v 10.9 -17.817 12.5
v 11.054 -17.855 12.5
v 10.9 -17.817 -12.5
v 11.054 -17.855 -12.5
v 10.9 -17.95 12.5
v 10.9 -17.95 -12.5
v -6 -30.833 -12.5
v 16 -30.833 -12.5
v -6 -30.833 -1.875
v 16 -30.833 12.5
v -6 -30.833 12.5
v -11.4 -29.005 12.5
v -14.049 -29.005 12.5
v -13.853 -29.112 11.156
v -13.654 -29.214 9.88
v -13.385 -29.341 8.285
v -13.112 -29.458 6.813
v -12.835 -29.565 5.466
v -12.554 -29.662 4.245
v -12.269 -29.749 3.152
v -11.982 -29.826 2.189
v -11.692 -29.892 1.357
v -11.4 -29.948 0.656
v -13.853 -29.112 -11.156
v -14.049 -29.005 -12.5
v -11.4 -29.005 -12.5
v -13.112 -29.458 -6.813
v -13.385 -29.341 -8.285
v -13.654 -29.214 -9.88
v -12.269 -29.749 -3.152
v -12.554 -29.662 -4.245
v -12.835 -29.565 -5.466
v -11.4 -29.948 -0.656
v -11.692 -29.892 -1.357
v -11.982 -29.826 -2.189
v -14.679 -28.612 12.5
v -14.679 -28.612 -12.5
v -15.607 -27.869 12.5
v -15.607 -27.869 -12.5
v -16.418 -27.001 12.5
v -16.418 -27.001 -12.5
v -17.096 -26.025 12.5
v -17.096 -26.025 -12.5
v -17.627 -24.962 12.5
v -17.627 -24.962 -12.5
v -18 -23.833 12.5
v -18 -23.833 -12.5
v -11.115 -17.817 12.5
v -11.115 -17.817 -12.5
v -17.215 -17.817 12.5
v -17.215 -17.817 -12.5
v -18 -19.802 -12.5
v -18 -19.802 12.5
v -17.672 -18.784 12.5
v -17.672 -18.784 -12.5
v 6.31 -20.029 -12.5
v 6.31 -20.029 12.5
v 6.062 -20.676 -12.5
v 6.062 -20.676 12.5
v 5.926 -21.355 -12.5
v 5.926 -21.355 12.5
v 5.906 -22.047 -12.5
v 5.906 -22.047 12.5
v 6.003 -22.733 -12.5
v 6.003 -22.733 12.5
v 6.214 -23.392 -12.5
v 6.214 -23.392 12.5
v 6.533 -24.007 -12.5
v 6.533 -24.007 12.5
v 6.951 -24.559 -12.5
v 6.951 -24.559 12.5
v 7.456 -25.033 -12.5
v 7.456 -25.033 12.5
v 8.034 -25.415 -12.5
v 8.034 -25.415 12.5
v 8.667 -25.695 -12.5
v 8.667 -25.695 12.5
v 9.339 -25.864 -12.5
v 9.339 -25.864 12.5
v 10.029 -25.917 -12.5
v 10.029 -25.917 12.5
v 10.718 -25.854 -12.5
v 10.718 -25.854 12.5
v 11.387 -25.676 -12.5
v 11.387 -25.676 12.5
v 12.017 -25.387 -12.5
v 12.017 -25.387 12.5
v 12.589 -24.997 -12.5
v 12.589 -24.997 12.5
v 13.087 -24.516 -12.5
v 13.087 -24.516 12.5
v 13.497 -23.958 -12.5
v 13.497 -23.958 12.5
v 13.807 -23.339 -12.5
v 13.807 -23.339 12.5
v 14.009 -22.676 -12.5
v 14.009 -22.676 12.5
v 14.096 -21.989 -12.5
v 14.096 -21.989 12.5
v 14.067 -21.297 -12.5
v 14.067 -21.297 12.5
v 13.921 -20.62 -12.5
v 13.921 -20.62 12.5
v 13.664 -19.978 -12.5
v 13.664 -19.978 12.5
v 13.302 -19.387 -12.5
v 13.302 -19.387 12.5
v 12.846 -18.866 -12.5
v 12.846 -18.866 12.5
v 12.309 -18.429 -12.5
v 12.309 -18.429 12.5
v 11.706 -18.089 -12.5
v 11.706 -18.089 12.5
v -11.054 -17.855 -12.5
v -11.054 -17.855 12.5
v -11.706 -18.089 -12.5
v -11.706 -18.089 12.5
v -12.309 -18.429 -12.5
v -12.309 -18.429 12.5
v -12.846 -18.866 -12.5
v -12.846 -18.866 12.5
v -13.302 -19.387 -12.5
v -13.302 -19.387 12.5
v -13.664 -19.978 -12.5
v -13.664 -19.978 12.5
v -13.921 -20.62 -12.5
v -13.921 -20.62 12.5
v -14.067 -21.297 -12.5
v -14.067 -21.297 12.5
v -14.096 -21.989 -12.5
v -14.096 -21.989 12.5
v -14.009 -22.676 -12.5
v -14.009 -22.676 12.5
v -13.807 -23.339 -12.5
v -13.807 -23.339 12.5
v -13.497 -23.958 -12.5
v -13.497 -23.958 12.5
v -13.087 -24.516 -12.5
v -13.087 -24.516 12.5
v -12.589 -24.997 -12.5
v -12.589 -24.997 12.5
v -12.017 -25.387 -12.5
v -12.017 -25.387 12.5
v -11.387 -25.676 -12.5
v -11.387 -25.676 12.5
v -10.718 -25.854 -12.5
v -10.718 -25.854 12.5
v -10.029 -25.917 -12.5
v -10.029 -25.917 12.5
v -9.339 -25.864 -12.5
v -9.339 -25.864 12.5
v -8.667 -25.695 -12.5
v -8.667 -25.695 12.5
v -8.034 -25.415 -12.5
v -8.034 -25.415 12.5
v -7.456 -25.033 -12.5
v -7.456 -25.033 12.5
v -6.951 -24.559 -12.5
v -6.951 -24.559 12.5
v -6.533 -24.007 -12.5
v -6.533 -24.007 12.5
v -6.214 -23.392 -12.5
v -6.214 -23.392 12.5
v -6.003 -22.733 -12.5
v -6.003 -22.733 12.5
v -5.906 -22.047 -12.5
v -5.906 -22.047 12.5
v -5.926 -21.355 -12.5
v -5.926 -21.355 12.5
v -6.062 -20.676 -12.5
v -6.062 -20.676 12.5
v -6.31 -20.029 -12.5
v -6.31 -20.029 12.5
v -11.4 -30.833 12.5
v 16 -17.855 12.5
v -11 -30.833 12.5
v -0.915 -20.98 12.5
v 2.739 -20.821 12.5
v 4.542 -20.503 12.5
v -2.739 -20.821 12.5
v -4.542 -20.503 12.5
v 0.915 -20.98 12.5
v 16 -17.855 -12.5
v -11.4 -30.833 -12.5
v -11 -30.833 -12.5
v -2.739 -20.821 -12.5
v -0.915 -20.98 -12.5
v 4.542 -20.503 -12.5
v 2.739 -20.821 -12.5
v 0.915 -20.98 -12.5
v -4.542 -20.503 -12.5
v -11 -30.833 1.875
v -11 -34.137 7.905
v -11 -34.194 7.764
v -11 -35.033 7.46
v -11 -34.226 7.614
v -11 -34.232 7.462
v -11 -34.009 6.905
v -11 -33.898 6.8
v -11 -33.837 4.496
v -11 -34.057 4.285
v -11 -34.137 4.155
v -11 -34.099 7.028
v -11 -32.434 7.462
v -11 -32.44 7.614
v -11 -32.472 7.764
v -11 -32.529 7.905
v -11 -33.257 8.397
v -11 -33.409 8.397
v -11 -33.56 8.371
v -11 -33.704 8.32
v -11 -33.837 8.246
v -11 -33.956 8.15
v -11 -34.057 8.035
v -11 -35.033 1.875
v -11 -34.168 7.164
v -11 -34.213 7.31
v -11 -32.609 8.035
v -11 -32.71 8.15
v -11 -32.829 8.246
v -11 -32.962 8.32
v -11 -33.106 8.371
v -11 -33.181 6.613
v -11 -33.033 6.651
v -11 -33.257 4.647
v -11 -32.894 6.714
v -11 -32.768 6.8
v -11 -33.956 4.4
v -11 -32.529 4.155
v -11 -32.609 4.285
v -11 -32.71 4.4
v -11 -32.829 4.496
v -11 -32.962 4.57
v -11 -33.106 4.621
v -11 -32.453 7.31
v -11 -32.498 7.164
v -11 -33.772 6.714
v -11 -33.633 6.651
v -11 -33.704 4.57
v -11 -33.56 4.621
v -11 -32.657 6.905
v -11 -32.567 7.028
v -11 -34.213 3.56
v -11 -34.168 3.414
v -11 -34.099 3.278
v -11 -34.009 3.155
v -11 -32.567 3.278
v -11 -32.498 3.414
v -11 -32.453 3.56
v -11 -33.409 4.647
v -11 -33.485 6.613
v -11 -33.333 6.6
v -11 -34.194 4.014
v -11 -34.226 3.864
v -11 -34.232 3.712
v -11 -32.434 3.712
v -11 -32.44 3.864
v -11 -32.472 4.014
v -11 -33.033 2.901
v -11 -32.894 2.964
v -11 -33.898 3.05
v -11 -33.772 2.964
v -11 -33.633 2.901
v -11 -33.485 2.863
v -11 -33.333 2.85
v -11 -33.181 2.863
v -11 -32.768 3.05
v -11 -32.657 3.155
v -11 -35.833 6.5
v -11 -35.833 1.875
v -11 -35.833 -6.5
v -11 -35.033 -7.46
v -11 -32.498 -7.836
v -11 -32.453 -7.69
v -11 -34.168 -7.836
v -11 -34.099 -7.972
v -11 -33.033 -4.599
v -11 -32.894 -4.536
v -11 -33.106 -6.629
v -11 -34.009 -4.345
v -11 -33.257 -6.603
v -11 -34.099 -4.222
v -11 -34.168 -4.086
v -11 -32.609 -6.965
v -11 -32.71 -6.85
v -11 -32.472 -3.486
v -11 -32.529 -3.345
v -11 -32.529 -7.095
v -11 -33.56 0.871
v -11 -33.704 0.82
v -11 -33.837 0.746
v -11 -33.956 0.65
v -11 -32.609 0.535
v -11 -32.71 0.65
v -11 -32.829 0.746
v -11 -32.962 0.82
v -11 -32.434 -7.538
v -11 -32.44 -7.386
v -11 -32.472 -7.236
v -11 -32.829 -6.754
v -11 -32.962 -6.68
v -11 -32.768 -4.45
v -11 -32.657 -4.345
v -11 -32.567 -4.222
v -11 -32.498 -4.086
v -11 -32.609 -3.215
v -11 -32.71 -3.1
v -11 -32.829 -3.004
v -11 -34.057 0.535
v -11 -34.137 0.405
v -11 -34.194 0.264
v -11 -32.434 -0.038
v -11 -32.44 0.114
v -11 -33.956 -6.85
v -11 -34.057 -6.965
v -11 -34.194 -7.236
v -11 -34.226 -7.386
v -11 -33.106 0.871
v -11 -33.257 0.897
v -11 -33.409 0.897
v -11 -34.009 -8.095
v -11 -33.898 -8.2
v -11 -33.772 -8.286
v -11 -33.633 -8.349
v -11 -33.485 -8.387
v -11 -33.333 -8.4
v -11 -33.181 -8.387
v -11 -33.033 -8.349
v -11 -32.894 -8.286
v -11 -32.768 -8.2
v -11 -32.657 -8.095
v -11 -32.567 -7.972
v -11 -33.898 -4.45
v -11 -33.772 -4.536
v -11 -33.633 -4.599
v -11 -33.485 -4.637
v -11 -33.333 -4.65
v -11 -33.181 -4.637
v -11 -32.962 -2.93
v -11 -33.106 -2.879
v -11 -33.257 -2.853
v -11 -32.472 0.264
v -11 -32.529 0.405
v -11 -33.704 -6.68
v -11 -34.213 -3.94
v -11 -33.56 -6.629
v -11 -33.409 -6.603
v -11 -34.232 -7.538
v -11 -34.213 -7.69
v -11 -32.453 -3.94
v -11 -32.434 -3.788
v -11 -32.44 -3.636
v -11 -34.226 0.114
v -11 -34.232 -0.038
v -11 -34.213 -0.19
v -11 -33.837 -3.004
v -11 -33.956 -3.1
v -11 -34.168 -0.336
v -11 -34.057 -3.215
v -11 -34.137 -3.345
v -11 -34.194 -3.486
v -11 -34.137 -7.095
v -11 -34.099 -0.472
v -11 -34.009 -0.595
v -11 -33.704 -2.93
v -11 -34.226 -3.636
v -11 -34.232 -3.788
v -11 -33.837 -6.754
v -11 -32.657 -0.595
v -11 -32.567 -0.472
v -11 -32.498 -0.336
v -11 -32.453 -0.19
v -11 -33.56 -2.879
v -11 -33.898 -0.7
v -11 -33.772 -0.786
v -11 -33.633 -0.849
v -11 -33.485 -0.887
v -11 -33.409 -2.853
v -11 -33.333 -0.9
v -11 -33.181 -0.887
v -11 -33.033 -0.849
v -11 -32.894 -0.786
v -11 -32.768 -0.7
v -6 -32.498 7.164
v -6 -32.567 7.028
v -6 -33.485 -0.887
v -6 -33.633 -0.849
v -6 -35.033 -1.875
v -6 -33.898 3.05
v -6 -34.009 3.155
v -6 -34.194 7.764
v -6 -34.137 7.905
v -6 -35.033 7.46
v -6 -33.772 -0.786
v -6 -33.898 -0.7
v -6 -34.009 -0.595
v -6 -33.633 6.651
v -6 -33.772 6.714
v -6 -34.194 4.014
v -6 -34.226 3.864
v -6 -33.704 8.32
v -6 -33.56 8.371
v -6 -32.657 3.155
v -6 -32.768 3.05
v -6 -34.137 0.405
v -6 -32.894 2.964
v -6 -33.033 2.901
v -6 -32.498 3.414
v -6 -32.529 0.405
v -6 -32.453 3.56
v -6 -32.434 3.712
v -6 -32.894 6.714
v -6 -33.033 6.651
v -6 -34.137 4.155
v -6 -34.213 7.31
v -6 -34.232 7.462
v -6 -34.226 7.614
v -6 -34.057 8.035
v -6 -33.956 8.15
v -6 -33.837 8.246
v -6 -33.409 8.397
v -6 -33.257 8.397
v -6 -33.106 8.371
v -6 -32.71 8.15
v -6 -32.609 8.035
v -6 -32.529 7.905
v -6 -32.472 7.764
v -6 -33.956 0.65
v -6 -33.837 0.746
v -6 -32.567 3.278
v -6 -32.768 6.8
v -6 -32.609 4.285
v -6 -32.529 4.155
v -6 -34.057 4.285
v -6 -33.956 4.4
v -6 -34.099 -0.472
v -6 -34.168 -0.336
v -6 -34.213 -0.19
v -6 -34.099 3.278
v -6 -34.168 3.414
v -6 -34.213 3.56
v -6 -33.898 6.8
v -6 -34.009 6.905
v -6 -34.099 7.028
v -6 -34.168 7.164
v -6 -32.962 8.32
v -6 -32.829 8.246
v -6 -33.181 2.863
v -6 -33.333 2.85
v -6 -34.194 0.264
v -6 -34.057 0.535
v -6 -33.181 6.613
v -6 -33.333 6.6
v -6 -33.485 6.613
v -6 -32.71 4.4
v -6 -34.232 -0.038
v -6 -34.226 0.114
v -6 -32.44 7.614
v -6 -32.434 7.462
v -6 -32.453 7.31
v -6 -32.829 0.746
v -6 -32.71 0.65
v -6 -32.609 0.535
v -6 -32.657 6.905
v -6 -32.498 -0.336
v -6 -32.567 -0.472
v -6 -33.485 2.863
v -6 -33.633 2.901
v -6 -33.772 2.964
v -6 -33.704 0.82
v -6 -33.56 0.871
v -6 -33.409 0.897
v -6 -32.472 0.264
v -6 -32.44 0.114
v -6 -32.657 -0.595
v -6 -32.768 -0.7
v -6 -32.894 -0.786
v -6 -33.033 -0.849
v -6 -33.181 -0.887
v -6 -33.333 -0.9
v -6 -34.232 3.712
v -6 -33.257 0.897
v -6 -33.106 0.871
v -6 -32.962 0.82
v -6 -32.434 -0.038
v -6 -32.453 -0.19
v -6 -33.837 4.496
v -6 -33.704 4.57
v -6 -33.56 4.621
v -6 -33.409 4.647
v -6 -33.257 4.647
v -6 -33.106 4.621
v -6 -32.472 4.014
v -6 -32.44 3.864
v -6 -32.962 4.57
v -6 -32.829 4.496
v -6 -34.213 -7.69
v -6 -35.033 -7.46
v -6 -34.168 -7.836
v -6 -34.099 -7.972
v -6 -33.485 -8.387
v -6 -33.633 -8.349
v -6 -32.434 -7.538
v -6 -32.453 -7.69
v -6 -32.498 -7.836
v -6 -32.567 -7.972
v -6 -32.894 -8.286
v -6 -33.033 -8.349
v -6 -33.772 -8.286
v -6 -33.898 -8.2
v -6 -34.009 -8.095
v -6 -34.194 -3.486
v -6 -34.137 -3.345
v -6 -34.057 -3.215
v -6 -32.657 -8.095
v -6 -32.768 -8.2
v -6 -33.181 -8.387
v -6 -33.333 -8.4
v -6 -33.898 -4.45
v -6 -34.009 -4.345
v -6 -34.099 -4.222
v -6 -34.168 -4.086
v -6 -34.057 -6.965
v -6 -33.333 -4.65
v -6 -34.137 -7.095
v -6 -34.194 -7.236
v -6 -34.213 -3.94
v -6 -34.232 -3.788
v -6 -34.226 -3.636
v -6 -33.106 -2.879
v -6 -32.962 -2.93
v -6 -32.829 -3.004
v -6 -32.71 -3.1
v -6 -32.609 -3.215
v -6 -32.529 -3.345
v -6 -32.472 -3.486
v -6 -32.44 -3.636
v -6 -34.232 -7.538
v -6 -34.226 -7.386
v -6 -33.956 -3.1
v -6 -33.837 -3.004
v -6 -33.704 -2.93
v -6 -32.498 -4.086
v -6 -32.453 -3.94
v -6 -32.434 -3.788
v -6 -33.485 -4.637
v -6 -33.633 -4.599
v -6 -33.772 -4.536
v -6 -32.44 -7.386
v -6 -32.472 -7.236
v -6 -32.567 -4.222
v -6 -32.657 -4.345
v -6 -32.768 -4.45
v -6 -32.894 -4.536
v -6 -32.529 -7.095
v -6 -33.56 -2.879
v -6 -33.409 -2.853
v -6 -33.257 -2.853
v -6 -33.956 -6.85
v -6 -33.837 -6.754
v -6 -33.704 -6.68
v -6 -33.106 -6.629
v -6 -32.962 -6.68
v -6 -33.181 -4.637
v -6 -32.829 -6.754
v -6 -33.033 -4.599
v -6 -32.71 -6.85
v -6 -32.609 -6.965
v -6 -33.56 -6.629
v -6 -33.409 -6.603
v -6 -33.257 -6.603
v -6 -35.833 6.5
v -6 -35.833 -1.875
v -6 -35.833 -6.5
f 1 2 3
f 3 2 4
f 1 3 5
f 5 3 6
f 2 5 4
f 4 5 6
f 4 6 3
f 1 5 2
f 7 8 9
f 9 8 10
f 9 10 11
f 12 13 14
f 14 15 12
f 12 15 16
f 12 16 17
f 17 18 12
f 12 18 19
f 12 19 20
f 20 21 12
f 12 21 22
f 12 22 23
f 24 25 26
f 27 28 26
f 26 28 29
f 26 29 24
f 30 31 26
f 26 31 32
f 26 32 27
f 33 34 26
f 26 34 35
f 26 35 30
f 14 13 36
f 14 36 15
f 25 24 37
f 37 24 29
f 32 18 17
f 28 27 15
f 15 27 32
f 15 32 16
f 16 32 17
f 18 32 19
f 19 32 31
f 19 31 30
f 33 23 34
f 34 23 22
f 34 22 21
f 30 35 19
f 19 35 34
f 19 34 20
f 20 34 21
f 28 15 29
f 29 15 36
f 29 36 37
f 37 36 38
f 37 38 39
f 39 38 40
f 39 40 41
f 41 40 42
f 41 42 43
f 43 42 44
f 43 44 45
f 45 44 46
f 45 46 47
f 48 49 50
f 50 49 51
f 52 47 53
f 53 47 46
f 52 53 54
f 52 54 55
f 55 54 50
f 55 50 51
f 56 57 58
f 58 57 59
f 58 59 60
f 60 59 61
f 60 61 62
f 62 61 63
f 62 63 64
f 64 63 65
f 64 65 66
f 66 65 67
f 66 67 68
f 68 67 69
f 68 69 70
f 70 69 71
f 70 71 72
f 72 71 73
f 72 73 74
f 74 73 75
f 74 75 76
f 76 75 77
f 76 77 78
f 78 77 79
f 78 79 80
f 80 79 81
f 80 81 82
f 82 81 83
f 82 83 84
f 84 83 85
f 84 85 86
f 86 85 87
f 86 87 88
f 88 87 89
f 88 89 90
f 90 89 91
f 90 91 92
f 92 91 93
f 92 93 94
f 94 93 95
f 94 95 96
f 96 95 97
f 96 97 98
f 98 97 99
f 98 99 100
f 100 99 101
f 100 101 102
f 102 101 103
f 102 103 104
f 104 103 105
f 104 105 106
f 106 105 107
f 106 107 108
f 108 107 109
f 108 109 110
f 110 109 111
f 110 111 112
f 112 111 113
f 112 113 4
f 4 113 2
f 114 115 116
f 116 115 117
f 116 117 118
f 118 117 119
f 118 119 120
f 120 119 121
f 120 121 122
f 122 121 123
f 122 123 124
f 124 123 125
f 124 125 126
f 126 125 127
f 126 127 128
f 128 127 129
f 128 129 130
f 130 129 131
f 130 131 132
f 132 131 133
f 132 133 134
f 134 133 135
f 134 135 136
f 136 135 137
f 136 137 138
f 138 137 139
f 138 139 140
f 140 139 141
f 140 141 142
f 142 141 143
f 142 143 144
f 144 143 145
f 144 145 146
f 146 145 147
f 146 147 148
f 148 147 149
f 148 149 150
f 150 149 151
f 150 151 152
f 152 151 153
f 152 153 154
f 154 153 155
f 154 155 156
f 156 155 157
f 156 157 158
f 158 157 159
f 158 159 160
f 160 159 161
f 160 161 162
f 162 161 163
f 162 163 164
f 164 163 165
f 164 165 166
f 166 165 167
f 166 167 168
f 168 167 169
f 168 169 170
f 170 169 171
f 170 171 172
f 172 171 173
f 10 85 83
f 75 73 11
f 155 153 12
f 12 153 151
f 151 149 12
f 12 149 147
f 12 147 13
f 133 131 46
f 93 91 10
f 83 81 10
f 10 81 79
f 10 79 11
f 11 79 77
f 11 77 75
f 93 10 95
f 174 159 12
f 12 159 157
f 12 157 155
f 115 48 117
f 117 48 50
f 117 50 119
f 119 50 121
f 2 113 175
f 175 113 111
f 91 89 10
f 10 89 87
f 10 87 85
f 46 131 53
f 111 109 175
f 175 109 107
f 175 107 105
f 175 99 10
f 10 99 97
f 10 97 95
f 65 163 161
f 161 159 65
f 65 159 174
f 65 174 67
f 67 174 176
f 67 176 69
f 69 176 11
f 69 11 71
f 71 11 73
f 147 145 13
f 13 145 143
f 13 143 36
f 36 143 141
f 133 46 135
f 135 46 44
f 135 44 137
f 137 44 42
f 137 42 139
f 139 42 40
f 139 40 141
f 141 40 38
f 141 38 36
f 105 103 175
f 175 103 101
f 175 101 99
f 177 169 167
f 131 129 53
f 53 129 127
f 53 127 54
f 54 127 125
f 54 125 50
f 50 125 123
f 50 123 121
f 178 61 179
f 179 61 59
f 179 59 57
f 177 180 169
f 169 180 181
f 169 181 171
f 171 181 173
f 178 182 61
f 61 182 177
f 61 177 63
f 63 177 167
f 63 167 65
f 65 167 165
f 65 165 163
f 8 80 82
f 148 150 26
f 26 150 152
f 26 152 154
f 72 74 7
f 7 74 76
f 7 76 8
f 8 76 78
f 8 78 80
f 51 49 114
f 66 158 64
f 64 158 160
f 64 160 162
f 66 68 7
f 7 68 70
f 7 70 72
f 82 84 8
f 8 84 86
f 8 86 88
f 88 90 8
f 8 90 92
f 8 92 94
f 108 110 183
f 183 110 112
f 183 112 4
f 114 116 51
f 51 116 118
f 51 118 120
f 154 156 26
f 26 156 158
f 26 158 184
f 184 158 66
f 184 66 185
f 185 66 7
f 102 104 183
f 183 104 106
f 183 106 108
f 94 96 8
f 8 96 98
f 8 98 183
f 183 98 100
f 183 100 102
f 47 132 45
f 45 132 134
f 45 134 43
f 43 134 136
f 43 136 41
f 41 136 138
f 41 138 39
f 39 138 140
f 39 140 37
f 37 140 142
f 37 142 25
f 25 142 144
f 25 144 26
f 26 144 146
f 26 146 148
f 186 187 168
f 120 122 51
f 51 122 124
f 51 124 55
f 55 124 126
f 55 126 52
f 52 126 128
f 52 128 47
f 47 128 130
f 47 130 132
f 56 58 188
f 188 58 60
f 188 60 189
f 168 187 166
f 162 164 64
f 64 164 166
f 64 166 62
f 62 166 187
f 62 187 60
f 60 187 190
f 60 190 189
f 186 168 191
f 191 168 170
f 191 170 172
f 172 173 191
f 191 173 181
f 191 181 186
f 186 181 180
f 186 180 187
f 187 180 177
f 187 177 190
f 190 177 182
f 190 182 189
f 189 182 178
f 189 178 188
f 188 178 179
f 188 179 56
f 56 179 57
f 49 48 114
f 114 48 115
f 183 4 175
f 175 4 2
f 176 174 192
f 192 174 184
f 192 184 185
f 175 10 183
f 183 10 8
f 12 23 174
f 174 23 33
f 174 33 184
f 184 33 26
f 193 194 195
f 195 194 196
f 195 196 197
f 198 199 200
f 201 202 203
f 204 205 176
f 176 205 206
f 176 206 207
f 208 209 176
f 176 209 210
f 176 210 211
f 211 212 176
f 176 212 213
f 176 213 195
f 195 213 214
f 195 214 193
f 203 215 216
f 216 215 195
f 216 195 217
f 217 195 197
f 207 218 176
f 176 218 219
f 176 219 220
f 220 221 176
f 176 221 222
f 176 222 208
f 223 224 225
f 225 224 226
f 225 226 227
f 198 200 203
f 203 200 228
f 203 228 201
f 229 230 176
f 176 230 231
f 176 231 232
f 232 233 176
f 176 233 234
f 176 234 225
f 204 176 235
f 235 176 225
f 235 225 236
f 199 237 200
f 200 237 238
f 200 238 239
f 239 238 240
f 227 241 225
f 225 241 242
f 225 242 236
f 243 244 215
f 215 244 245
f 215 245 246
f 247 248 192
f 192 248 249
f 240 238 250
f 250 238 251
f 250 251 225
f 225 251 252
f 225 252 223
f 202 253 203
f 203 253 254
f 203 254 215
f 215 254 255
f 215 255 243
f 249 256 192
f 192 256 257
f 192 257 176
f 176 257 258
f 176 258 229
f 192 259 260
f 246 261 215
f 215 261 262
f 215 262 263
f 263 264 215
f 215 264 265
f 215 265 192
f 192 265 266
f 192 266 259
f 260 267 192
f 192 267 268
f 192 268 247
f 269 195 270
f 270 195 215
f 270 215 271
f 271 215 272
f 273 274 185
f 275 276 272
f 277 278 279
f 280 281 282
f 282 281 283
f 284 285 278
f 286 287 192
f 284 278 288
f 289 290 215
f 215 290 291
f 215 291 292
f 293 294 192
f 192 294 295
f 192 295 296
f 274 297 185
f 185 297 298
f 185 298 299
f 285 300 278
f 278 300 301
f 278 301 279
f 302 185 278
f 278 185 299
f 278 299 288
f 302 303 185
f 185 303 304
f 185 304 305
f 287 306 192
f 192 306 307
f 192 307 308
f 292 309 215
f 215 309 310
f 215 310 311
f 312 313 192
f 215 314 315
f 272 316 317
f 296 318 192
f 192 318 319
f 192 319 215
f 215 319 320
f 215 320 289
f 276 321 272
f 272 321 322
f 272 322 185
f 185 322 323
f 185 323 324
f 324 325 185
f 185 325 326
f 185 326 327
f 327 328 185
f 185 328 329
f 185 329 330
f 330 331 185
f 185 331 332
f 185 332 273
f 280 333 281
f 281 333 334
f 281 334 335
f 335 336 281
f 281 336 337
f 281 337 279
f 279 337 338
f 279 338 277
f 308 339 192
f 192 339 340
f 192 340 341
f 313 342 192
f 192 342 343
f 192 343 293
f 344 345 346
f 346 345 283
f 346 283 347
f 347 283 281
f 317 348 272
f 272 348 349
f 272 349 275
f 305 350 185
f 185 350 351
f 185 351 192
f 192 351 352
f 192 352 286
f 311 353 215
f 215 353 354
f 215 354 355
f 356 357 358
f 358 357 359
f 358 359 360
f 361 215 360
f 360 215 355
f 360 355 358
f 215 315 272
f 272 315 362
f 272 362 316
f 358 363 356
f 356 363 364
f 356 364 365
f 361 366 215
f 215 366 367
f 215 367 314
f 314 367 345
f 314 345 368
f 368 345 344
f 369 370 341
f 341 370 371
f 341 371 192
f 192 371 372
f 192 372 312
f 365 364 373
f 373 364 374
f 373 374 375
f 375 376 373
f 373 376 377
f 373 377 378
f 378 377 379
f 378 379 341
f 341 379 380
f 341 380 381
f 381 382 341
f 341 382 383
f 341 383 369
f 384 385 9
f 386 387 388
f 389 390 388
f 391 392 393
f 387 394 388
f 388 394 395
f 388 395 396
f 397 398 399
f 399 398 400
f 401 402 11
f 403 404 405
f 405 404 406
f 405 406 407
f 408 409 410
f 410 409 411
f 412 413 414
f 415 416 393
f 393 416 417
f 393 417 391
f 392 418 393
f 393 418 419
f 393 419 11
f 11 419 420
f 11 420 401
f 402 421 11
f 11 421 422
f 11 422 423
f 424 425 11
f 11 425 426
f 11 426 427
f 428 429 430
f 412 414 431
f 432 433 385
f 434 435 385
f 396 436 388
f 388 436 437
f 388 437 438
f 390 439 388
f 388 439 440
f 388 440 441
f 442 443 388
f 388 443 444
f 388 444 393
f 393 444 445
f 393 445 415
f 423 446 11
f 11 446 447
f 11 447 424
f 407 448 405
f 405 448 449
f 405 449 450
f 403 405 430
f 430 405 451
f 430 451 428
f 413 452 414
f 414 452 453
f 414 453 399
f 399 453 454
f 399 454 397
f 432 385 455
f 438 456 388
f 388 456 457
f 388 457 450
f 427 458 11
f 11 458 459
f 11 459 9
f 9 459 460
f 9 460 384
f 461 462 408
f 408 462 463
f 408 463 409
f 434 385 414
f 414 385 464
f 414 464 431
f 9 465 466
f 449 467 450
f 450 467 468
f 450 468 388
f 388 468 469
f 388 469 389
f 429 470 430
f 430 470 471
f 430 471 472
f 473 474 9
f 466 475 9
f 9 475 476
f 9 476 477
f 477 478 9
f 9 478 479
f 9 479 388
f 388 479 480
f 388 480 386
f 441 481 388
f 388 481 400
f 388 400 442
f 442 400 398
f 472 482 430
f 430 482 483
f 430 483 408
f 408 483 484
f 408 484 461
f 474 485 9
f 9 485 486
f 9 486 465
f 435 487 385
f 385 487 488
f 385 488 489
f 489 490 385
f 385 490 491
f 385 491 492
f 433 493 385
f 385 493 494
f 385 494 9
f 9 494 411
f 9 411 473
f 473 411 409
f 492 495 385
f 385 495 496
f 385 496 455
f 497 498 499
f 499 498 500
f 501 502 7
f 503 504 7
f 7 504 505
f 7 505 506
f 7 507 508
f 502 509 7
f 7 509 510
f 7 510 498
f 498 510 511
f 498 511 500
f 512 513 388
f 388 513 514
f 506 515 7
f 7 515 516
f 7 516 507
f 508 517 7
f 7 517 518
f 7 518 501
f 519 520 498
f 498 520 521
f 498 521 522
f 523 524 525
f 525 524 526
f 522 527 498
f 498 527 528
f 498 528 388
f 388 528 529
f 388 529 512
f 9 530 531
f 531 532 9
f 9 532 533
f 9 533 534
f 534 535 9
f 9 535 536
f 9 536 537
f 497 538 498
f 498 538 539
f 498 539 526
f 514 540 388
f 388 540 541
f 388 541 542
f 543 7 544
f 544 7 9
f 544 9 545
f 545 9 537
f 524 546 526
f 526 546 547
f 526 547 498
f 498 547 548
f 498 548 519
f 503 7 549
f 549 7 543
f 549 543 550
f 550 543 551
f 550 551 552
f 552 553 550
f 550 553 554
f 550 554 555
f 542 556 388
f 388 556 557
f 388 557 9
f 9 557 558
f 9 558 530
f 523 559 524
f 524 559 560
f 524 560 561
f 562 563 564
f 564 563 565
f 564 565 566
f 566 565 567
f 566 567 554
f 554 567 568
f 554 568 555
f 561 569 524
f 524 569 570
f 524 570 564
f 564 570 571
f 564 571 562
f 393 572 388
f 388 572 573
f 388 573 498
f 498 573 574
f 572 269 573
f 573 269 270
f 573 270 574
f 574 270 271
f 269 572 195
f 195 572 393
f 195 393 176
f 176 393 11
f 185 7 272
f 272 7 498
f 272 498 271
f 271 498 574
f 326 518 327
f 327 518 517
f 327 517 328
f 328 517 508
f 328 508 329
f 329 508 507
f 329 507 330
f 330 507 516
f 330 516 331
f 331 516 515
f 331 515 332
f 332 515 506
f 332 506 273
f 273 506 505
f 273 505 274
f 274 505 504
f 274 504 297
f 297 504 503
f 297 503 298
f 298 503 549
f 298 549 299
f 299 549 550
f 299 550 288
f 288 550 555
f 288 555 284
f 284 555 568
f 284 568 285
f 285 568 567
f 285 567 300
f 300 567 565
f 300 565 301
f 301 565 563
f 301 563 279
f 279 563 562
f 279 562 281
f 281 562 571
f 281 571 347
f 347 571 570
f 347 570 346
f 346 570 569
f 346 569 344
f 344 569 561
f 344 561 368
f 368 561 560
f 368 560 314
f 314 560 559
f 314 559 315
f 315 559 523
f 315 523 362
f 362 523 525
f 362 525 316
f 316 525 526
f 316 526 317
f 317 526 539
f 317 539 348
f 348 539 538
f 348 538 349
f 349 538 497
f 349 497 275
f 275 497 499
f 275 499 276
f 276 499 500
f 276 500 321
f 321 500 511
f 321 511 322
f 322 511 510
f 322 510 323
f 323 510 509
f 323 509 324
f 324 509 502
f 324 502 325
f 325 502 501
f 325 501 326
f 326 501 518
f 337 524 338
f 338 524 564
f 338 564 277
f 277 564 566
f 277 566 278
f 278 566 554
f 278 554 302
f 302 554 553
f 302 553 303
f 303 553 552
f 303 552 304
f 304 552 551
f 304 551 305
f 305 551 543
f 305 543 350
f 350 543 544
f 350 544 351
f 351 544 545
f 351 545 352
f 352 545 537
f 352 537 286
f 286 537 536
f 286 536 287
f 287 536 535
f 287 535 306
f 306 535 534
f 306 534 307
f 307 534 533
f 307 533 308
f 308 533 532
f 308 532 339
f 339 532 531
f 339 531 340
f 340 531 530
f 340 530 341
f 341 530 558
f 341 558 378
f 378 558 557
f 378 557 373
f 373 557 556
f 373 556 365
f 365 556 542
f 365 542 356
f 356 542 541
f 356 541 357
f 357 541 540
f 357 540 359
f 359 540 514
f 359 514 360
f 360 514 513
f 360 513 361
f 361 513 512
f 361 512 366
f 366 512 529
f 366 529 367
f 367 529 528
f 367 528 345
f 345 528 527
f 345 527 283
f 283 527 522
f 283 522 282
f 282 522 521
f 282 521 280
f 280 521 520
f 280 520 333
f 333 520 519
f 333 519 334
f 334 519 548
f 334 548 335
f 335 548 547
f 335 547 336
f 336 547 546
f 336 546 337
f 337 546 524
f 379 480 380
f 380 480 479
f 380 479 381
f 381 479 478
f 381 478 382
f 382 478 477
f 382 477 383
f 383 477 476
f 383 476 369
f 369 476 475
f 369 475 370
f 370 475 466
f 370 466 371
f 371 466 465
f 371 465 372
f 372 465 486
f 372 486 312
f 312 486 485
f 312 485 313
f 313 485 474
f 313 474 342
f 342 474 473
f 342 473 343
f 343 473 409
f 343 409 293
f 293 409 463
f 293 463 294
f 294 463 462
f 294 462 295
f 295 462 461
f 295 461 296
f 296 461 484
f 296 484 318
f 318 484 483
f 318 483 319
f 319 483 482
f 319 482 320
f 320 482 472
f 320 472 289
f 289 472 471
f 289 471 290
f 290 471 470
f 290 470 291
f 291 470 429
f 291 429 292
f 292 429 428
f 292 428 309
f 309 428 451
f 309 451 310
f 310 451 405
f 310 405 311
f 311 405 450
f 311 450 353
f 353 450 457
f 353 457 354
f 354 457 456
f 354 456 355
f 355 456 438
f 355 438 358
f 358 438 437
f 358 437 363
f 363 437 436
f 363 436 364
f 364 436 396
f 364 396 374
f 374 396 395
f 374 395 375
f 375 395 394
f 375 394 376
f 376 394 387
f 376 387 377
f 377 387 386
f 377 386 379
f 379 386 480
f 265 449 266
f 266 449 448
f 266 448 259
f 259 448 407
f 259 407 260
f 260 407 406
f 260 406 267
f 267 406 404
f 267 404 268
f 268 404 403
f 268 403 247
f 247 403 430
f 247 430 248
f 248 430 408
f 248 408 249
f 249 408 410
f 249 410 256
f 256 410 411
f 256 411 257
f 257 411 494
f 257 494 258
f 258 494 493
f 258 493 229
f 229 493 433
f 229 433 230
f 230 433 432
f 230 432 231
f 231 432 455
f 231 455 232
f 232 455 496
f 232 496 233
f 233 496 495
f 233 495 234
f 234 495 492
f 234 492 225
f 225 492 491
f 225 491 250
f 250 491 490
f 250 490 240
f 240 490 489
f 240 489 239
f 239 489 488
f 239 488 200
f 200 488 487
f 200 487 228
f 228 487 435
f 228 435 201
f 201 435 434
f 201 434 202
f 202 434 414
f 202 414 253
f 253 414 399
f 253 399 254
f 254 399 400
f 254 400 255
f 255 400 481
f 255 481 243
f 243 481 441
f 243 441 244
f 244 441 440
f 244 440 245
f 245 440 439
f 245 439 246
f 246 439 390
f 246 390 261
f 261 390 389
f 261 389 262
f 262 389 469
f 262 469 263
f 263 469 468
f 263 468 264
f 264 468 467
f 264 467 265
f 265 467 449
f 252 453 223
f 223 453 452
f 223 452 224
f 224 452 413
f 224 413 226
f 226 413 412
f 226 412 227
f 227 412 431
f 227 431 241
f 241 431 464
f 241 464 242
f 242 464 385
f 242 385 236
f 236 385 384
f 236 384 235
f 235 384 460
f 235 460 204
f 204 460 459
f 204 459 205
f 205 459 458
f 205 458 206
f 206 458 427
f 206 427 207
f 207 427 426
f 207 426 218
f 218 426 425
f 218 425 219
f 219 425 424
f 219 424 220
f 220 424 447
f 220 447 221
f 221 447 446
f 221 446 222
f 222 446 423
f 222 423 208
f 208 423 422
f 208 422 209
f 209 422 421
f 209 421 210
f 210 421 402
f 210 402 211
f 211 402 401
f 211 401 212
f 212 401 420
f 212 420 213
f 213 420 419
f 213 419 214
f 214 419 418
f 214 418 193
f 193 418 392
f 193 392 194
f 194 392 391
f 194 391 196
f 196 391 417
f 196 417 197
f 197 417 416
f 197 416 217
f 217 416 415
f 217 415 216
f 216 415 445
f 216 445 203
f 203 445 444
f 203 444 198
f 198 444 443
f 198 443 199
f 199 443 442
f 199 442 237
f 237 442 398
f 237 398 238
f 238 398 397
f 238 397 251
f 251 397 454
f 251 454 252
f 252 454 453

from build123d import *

# Parameters (mm, degrees)
BOSS_EXTRUDE1_DEPTH = 18
CUT_EXTRUDE3_DEPTH  = 88.315519812
BOSS_EXTRUDE2_DEPTH = 15.1
CUT_EXTRUDE5_START  = -40
CUT_EXTRUDE5_DEPTH  = 80
SKETCH11_W          = 45
SKETCH11_H          = 50
CUT_EXTRUDE8_DEPTH  = 35
SKETCH12_W          = 14.945990499
SKETCH12_H          = 30.355219796
CUT_EXTRUDE9_DEPTH  = 70
SKETCH13_W          = 12.4
SKETCH13_H          = 25
BOSS_EXTRUDE3_DEPTH = 7
SKETCH14_W          = 10
SKETCH14_H          = 12.97776887
CUT_EXTRUDE10_DEPTH = 40
SKETCH15_W          = 25
SKETCH15_H          = 1.827543594
BOSS_EXTRUDE4_DEPTH = 25
SKETCH17_W          = 5
SKETCH17_H          = 25
BOSS_EXTRUDE5_DEPTH = 5
CUT_EXTRUDE11_DEPTH = 15
SKETCH19_R          = 0.9
CUT_EXTRUDE12_DEPTH = 15


# Read off the part's stored shape, not the designer's step: Cut-Extrude5
with BuildPart() as part:
    # Sketch2 → Boss-Extrude1 (new, symmetric)
    with BuildSketch(Plane(origin=(0, 0, 0), x_dir=(0, 0, -1), z_dir=(1, 0, 0))):
        Polygon((-40, -26.817424229), (-40, -17.817424229), (40, -17.817424229), (40, -26.817424229), (0, -30), align=None)
    extrude(amount=BOSS_EXTRUDE1_DEPTH, both=True)

    # Sketch3 → Cut-Extrude3 (cut, through all)
    with BuildSketch(Plane.XY.offset(40)):
        with BuildLine():
            Line((-16.562202374, -26.817424229), (-18, -26.817424229))
            Line((-18, -26.817424229), (-18, -30.067424229))
            Line((-18, -30.067424229), (-10, -30.067424229))
            ThreePointArc((-10, -30.067424229), (-13.661454629, -29.210410771), (-16.562202374, -26.817424229))
        make_face()
        with BuildLine():
            ThreePointArc((-16.562202374, -26.817424229), (-17.432438927, -25.398115726), (-18, -23.832988666))
            Line((-18, -23.832988666), (-18, -26.817424229))
            Line((-18, -26.817424229), (-16.562202374, -26.817424229))
        make_face()
        with BuildLine():
            Line((-17.215434845, -17.817424229), (-18, -17.817424229))
            Line((-18, -17.817424229), (-18, -19.801859792))
            ThreePointArc((-18, -19.801859792), (-17.672148363, -18.784168636), (-17.215434845, -17.817424229))
        make_face()
        with BuildLine():
            ThreePointArc((16.562202374, -26.817424229), (13.661454629, -29.210410771), (10, -30.067424229))
            Line((10, -30.067424229), (18, -30.067424229))
            Line((18, -30.067424229), (18, -26.817424229))
            Line((18, -26.817424229), (16.562202374, -26.817424229))
        make_face()
        with BuildLine():
            ThreePointArc((10.138510435, -17.817424229), (10.216403484, -17.772875396), (10.294100789, -17.727986037))
            ThreePointArc((10.294100789, -17.727986037), (9.693767636, -17.728876597), (9.1, -17.817424229))
            Line((9.1, -17.817424229), (10.138510435, -17.817424229))
        make_face()
        with BuildLine():
            ThreePointArc((10.9, -17.817424229), (10.598722783, -17.761375533), (10.294100789, -17.727986037))
            ThreePointArc((10.294100789, -17.727986037), (10.216403484, -17.772875396), (10.138510435, -17.817424229))
            Line((10.138510435, -17.817424229), (10.9, -17.817424229))
        make_face()
        with BuildLine():
            Line((10.138510435, -17.817424229), (9.1, -17.817424229))
            ThreePointArc((9.1, -17.817424229), (7.76570517, -18.379703093), (6.710065877, -19.370725746))
            ThreePointArc((6.710065877, -19.370725746), (8.460012845, -18.672926462), (10.138510435, -17.817424229))
        make_face()
        with BuildLine():
            ThreePointArc((14.1, -21.817424229), (13.201562119, -19.256174534), (10.9, -17.817424229))
            Line((10.9, -17.817424229), (10.138510435, -17.817424229))
            ThreePointArc((10.138510435, -17.817424229), (8.460012845, -18.672926462), (6.710065877, -19.370725746))
            ThreePointArc((6.710065877, -19.370725746), (8.711343704, -25.709642742), (14.1, -21.817424229))
        make_face()
        with BuildLine():
            Line((-10.138510435, -17.817424229), (-10.9, -17.817424229))
            ThreePointArc((-10.9, -17.817424229), (-12.561249695, -25.018986348), (-5.9, -21.817424229))
            ThreePointArc((-5.9, -21.817424229), (-6.107781487, -20.528767934), (-6.710065877, -19.370725746))
            ThreePointArc((-6.710065877, -19.370725746), (-8.460012845, -18.672926462), (-10.138510435, -17.817424229))
        make_face()
        with BuildLine():
            ThreePointArc((-10.294100789, -17.727986037), (-10.598722783, -17.761375533), (-10.9, -17.817424229))
            Line((-10.9, -17.817424229), (-10.138510435, -17.817424229))
            ThreePointArc((-10.138510435, -17.817424229), (-10.216403484, -17.772875396), (-10.294100789, -17.727986037))
        make_face()
        with BuildLine():
            ThreePointArc((-9.1, -17.817424229), (-9.693767636, -17.728876597), (-10.294100789, -17.727986037))
            ThreePointArc((-10.294100789, -17.727986037), (-10.216403484, -17.772875396), (-10.138510435, -17.817424229))
            Line((-10.138510435, -17.817424229), (-9.1, -17.817424229))
        make_face()
        with BuildLine():
            Line((-9.1, -17.817424229), (-10.138510435, -17.817424229))
            ThreePointArc((-10.138510435, -17.817424229), (-8.460012845, -18.672926462), (-6.710065877, -19.370725746))
            ThreePointArc((-6.710065877, -19.370725746), (-7.76570517, -18.379703093), (-9.1, -17.817424229))
        make_face()
        with BuildLine():
            ThreePointArc((18, -23.832988666), (17.432438927, -25.398115726), (16.562202374, -26.817424229))
            Line((16.562202374, -26.817424229), (18, -26.817424229))
            Line((18, -26.817424229), (18, -23.832988666))
        make_face()
        with BuildLine():
            ThreePointArc((-14.244209612, -14.742879384), (-15.932458957, -16.084324655), (-17.215434845, -17.817424229))
            Line((-17.215434845, -17.817424229), (-10.9, -17.817424229))
            ThreePointArc((-10.9, -17.817424229), (-10.598722783, -17.761375533), (-10.294100789, -17.727986037))
            ThreePointArc((-10.294100789, -17.727986037), (-12.359606983, -16.355125045), (-14.244209612, -14.742879384))
        make_face()
        with BuildLine():
            ThreePointArc((-2.784565155, -17.817424229), (-7.86218538, -13.849221882), (-14.244209612, -14.742879384))
            ThreePointArc((-14.244209612, -14.742879384), (-12.359606983, -16.355125045), (-10.294100789, -17.727986037))
            ThreePointArc((-10.294100789, -17.727986037), (-9.693767636, -17.728876597), (-9.1, -17.817424229))
            Line((-9.1, -17.817424229), (-2.784565155, -17.817424229))
        make_face()
        with BuildLine():
            ThreePointArc((-1.870156707, -20.414517234), (-2.21825127, -19.077554396), (-2.784565155, -17.817424229))
            Line((-2.784565155, -17.817424229), (-9.1, -17.817424229))
            ThreePointArc((-9.1, -17.817424229), (-7.76570517, -18.379703093), (-6.710065877, -19.370725746))
            ThreePointArc((-6.710065877, -19.370725746), (-4.321739241, -20.039275684), (-1.870156707, -20.414517234))
        make_face()
        with BuildLine():
            ThreePointArc((20.5, 0), (-8.007612096, 18.871357888), (-14.244209612, -14.742879384))
            ThreePointArc((-14.244209612, -14.742879384), (-7.86218538, -13.849221882), (-2.784565155, -17.817424229))
            Line((-2.784565155, -17.817424229), (2.784565155, -17.817424229))
            ThreePointArc((2.784565155, -17.817424229), (7.86218538, -13.849221882), (14.244209612, -14.742879384))
            ThreePointArc((14.244209612, -14.742879384), (18.871357888, -8.007612096), (20.5, 0))
        make_face()
        with BuildLine():
            Line((2.784565155, -17.817424229), (-2.784565155, -17.817424229))
            ThreePointArc((-2.784565155, -17.817424229), (-2.21825127, -19.077554396), (-1.870156707, -20.414517234))
            ThreePointArc((-1.870156707, -20.414517234), (0, -20.5), (1.870156707, -20.414517234))
            ThreePointArc((1.870156707, -20.414517234), (2.21825127, -19.077554396), (2.784565155, -17.817424229))
        make_face()
        with BuildLine():
            ThreePointArc((17.215434845, -17.817424229), (15.932458957, -16.084324655), (14.244209612, -14.742879384))
            ThreePointArc((14.244209612, -14.742879384), (12.359606983, -16.355125045), (10.294100789, -17.727986037))
            ThreePointArc((10.294100789, -17.727986037), (10.598722783, -17.761375533), (10.9, -17.817424229))
            Line((10.9, -17.817424229), (17.215434845, -17.817424229))
        make_face()
        with BuildLine():
            ThreePointArc((10.294100789, -17.727986037), (12.359606983, -16.355125045), (14.244209612, -14.742879384))
            ThreePointArc((14.244209612, -14.742879384), (7.86218538, -13.849221882), (2.784565155, -17.817424229))
            Line((2.784565155, -17.817424229), (9.1, -17.817424229))
            ThreePointArc((9.1, -17.817424229), (9.693767636, -17.728876597), (10.294100789, -17.727986037))
        make_face()
        with BuildLine():
            Line((9.1, -17.817424229), (2.784565155, -17.817424229))
            ThreePointArc((2.784565155, -17.817424229), (2.21825127, -19.077554396), (1.870156707, -20.414517234))
            ThreePointArc((1.870156707, -20.414517234), (4.321739241, -20.039275684), (6.710065877, -19.370725746))
            ThreePointArc((6.710065877, -19.370725746), (7.76570517, -18.379703093), (9.1, -17.817424229))
        make_face()
    extrude(amount=-CUT_EXTRUDE3_DEPTH, mode=Mode.SUBTRACT)

    # Sketch5 → Boss-Extrude2 (add)
    with BuildSketch(Plane(origin=(26, 0, 0), x_dir=(0, 0, -1), z_dir=(1, 0, 0))):
        Polygon((12.5, 12.5), (-12.5, 12.5), (-12.5, 0), (-40, -17.817424229), (-40, -23.832988666), (40, -23.832988666), (40, -17.817424229), (12.5, 0), align=None)
    extrude(amount=-BOSS_EXTRUDE2_DEPTH)

    # Cut-Extrude5 outline → Cut-Extrude5 (cut)
    with BuildSketch(Plane.XY.offset(CUT_EXTRUDE5_START)):
        with BuildLine():
            Line((10.9, -23.832988666), (13.570364127, -23.832988666))
            ThreePointArc((13.570364127, -23.832988666), (13.778840831, -20.226713077), (11.054009501, -17.855219796))
            ThreePointArc((11.054009501, -17.855219796), (10.977106296, -17.902601413), (10.9, -17.949651807))
            Line((10.9, -17.949651807), (10.9, -23.832988666))
        make_face()
        with BuildLine():
            ThreePointArc((-11.114827657, -17.817424229), (-11.084434688, -17.836347935), (-11.054009501, -17.855219796))
            ThreePointArc((-11.054009501, -17.855219796), (-10.977187499, -17.835577347), (-10.9, -17.817424229))
            Line((-10.9, -17.817424229), (-11.114827657, -17.817424229))
        make_face()
        with BuildLine():
            ThreePointArc((-6.310400221, -20.029449544), (0, -21), (6.310400221, -20.029449544))
            ThreePointArc((6.310400221, -20.029449544), (6.494725028, -19.690678506), (6.710065877, -19.370725746))
            ThreePointArc((6.710065877, -19.370725746), (0, -20.5), (-6.710065877, -19.370725746))
            ThreePointArc((-6.710065877, -19.370725746), (-6.494725028, -19.690678506), (-6.310400221, -20.029449544))
        make_face()
        with BuildLine():
            ThreePointArc((10.9, -17.817424229), (10.977187499, -17.835577347), (11.054009501, -17.855219796))
            ThreePointArc((11.054009501, -17.855219796), (20.624276231, -3.954646627), (16.874537031, 12.5))
            Line((16.874537031, 12.5), (10.9, 12.5))
            Line((10.9, 12.5), (10.9, -17.817424229))
        make_face()
    extrude(amount=CUT_EXTRUDE5_DEPTH, mode=Mode.SUBTRACT)

    # Sketch11 → Cut-Extrude8 (cut, symmetric)
    with BuildSketch(Plane(origin=(0, 0, 0), x_dir=(0, 0, -1), z_dir=(1, 0, 0))):
        with Locations((-35, -12.5)):
            Rectangle(SKETCH11_W, SKETCH11_H)
        with Locations((35, -12.5)):
            Rectangle(SKETCH11_W, SKETCH11_H)
    extrude(amount=CUT_EXTRUDE8_DEPTH, both=True, mode=Mode.SUBTRACT)

    # Sketch12 → Cut-Extrude9 (cut)
    with BuildSketch(Plane.XY.offset(12.5)):
        with Locations((18.527004751, -2.677609898)):
            Rectangle(SKETCH12_W, SKETCH12_H)
    extrude(amount=-CUT_EXTRUDE9_DEPTH, mode=Mode.SUBTRACT)

    # Sketch13 → Boss-Extrude3 (add)
    with BuildSketch(Plane.XZ.offset(23.832988666)):
        with Locations((19.8, 0)):
            Rectangle(SKETCH13_W, SKETCH13_H)
    extrude(amount=BOSS_EXTRUDE3_DEPTH)

    # Sketch14 → Cut-Extrude10 (cut)
    with BuildSketch(Plane.XY.offset(12.5)):
        with Locations((21, -24.344104231)):
            Rectangle(SKETCH14_W, SKETCH14_H)
    extrude(amount=-CUT_EXTRUDE10_DEPTH, mode=Mode.SUBTRACT)

    # Sketch15 → Boss-Extrude4 (add)
    with BuildSketch(Plane.ZY.offset(-13.6)):
        with Locations((0, -29.919216869)):
            Rectangle(SKETCH15_W, SKETCH15_H)
    extrude(amount=BOSS_EXTRUDE4_DEPTH)

    # Sketch17 → Boss-Extrude5 (add)
    with BuildSketch(Plane(origin=(0, -30.832988666, 0), x_dir=(-1, 0, 0), z_dir=(0, -1, 0))):
        with Locations((8.5, 0)):
            Rectangle(SKETCH17_W, SKETCH17_H)
    extrude(amount=BOSS_EXTRUDE5_DEPTH)

    # Sketch18 → Cut-Extrude11 (cut)
    with BuildSketch(Plane(origin=(-6, 0, 0), x_dir=(0, 0, -1), z_dir=(1, 0, 0))):
        Polygon((12.5, -30.832988666), (6.5, -35.832988666), (12.5, -35.832988666), align=None)
        Polygon((-6.5, -35.832988666), (-12.5, -35.832988666), (-12.5, -30.832988666), align=None)
    extrude(amount=-CUT_EXTRUDE11_DEPTH, mode=Mode.SUBTRACT)

    # Sketch19 → Cut-Extrude12 (cut)
    with BuildSketch(Plane(origin=(-6, 0, 0), x_dir=(0, 0, -1), z_dir=(1, 0, 0))):
        with Locations((-7.5, -33.332988666)):
            Circle(SKETCH19_R)
        with Locations((-3.75, -33.332988666)):
            Circle(SKETCH19_R)
        with Locations((0, -33.332988666)):
            Circle(SKETCH19_R)
        with Locations((3.75, -33.332988666)):
            Circle(SKETCH19_R)
        with Locations((7.5, -33.332988666)):
            Circle(SKETCH19_R)
    extrude(amount=-CUT_EXTRUDE12_DEPTH, mode=Mode.SUBTRACT)


solid = part.part
